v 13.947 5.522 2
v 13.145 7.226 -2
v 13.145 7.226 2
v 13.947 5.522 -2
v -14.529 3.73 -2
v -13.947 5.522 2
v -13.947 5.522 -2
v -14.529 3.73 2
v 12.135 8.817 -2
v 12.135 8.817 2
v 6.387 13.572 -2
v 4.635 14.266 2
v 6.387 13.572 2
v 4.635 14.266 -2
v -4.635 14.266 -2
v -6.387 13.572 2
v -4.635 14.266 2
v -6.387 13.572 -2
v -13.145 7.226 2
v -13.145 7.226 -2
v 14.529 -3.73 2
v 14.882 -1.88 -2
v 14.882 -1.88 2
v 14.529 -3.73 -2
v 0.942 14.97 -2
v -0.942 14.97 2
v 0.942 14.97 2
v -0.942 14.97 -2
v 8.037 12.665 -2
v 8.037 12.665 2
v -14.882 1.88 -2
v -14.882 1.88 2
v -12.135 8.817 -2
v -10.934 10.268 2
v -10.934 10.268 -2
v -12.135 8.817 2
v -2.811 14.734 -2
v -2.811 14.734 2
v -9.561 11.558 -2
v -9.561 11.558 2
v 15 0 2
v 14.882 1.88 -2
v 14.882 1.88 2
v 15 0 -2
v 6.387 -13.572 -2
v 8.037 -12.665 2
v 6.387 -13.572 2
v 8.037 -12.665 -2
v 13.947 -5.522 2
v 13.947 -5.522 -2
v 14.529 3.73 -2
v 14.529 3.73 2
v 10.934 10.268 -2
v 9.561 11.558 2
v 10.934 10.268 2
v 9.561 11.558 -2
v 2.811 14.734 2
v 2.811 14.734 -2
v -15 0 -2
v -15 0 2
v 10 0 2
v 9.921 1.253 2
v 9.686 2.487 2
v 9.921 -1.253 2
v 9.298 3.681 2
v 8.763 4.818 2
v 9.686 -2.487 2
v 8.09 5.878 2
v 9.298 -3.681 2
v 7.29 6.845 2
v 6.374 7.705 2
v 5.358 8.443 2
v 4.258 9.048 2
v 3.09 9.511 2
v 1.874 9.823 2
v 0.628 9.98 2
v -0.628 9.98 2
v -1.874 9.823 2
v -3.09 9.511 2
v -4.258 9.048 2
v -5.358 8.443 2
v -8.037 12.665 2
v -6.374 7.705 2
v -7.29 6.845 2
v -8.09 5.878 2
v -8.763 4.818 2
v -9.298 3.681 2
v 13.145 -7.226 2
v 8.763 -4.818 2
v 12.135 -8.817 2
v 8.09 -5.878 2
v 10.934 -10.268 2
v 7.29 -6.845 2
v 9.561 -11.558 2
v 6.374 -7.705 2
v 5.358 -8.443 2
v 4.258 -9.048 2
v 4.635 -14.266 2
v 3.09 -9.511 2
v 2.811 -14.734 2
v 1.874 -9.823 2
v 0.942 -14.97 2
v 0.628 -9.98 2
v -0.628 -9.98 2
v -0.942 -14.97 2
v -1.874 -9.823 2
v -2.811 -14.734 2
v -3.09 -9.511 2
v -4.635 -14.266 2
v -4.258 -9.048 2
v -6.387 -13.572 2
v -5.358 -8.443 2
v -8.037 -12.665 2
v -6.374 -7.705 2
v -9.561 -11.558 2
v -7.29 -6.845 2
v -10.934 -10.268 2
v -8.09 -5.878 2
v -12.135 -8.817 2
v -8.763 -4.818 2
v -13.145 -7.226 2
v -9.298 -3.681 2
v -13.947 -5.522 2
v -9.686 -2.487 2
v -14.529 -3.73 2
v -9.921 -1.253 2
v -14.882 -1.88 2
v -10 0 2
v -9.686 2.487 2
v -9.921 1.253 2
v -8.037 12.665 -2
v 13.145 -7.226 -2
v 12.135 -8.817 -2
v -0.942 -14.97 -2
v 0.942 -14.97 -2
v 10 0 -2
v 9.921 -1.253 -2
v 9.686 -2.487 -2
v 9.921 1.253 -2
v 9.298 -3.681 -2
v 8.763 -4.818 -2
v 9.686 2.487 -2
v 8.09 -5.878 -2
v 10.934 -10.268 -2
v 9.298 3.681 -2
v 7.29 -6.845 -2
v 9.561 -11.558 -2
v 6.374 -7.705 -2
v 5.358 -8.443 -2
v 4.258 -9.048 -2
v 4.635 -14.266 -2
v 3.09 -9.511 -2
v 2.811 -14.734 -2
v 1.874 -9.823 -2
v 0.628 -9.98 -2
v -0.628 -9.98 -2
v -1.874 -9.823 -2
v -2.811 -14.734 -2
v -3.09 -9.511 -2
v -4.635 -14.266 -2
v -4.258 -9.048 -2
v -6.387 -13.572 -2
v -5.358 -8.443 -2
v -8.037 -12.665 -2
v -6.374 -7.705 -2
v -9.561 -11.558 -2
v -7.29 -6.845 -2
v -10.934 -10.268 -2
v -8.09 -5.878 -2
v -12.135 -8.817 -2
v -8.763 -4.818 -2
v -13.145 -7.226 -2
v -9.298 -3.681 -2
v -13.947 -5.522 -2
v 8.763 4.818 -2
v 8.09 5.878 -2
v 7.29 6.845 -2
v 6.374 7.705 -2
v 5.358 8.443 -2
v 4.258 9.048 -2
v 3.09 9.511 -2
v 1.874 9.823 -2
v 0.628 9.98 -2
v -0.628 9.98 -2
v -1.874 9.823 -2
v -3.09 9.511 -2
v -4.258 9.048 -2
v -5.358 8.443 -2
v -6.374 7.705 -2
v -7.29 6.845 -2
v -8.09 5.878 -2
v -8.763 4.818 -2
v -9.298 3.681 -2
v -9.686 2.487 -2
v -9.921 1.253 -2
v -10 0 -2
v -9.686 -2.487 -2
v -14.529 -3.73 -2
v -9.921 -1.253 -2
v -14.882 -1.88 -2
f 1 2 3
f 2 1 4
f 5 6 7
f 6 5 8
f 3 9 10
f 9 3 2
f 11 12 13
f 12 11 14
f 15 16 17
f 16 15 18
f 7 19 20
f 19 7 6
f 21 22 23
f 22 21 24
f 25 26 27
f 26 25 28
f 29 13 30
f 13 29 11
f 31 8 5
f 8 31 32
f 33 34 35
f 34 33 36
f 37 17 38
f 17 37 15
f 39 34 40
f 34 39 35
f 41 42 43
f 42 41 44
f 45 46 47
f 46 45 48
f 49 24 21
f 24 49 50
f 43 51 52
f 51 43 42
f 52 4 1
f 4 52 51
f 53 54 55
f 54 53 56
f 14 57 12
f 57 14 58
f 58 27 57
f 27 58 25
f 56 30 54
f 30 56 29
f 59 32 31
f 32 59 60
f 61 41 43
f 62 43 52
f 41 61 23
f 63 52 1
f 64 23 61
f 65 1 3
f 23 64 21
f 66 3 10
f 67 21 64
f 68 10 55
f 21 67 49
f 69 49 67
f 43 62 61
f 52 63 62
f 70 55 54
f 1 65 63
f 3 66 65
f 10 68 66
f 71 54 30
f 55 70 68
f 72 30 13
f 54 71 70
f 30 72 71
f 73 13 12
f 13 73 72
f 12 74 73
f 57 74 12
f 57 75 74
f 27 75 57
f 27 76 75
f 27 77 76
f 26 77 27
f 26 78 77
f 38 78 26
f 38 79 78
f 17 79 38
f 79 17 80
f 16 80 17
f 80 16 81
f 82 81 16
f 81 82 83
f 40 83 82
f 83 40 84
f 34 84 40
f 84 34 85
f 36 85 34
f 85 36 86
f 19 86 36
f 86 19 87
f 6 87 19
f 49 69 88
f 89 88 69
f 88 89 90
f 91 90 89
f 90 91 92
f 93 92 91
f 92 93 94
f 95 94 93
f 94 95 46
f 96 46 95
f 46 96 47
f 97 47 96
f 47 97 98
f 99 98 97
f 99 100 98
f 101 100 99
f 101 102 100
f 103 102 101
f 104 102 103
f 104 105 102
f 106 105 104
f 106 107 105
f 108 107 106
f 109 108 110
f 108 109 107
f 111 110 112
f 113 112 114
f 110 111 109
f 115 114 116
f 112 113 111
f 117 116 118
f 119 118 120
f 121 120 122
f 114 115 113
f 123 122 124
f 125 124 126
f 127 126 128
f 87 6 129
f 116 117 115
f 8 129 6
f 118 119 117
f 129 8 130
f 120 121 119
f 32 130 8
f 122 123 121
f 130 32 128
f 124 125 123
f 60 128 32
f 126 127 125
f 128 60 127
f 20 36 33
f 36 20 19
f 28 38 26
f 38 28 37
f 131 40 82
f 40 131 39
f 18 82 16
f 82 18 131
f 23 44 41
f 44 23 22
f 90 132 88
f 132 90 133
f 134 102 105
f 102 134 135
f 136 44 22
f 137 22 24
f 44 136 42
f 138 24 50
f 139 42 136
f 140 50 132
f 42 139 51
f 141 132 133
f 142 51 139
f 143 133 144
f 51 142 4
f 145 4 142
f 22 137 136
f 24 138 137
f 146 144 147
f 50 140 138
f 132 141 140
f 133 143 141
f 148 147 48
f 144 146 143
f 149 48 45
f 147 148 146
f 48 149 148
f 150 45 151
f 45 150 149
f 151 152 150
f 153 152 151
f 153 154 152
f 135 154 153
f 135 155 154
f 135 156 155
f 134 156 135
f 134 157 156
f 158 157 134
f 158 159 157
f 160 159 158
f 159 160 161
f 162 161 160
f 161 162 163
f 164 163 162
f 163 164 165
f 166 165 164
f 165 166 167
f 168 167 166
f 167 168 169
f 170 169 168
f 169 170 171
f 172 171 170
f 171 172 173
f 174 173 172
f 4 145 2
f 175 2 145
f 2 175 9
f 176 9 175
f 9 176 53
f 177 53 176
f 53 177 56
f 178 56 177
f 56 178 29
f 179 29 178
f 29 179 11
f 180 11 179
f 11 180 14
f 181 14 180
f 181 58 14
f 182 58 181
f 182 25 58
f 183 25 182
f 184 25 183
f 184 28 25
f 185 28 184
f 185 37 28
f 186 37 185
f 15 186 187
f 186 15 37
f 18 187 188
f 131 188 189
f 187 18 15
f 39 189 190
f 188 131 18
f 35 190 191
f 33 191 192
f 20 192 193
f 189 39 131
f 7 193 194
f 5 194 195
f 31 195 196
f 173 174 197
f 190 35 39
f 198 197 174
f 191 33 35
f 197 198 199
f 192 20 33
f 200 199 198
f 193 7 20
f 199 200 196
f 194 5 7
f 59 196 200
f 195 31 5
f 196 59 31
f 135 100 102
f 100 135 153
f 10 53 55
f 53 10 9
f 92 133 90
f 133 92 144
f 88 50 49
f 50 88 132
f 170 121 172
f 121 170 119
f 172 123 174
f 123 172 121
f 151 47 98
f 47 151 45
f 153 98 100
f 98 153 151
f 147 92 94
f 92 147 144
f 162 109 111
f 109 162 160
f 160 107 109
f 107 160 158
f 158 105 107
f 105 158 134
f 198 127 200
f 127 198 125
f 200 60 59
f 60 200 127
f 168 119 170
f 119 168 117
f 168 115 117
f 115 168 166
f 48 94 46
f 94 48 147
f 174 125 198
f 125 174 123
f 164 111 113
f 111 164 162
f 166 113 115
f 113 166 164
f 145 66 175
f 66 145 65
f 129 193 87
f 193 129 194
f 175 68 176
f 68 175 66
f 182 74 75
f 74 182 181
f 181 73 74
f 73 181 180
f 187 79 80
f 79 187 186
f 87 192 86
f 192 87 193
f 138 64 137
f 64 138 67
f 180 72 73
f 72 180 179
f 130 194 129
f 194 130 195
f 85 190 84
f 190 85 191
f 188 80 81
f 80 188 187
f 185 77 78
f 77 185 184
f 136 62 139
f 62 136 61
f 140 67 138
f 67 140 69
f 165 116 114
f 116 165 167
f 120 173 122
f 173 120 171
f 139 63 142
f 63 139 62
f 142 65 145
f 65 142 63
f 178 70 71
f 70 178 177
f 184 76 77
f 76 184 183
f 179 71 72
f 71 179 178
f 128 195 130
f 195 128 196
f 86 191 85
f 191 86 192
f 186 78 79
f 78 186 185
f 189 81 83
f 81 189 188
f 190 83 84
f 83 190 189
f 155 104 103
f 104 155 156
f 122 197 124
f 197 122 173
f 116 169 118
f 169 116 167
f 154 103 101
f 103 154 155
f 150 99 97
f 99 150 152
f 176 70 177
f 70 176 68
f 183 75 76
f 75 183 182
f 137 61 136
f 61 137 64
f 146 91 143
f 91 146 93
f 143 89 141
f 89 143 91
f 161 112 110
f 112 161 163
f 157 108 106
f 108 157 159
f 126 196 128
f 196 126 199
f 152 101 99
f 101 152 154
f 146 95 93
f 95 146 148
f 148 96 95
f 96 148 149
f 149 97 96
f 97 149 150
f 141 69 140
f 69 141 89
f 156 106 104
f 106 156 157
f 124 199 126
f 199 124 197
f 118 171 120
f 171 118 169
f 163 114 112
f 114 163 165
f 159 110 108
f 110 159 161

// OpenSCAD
$fn = 50;


difference() {
	union() {
		translate(v = [0, 0, -2.0000000000]) {
			cylinder(h = 4, r = 15.0000000000);
		}
	}
	union() {
		translate(v = [0, 0, -100.0000000000]) {
			cylinder(h = 200, r = 10);
		}
	}
}
